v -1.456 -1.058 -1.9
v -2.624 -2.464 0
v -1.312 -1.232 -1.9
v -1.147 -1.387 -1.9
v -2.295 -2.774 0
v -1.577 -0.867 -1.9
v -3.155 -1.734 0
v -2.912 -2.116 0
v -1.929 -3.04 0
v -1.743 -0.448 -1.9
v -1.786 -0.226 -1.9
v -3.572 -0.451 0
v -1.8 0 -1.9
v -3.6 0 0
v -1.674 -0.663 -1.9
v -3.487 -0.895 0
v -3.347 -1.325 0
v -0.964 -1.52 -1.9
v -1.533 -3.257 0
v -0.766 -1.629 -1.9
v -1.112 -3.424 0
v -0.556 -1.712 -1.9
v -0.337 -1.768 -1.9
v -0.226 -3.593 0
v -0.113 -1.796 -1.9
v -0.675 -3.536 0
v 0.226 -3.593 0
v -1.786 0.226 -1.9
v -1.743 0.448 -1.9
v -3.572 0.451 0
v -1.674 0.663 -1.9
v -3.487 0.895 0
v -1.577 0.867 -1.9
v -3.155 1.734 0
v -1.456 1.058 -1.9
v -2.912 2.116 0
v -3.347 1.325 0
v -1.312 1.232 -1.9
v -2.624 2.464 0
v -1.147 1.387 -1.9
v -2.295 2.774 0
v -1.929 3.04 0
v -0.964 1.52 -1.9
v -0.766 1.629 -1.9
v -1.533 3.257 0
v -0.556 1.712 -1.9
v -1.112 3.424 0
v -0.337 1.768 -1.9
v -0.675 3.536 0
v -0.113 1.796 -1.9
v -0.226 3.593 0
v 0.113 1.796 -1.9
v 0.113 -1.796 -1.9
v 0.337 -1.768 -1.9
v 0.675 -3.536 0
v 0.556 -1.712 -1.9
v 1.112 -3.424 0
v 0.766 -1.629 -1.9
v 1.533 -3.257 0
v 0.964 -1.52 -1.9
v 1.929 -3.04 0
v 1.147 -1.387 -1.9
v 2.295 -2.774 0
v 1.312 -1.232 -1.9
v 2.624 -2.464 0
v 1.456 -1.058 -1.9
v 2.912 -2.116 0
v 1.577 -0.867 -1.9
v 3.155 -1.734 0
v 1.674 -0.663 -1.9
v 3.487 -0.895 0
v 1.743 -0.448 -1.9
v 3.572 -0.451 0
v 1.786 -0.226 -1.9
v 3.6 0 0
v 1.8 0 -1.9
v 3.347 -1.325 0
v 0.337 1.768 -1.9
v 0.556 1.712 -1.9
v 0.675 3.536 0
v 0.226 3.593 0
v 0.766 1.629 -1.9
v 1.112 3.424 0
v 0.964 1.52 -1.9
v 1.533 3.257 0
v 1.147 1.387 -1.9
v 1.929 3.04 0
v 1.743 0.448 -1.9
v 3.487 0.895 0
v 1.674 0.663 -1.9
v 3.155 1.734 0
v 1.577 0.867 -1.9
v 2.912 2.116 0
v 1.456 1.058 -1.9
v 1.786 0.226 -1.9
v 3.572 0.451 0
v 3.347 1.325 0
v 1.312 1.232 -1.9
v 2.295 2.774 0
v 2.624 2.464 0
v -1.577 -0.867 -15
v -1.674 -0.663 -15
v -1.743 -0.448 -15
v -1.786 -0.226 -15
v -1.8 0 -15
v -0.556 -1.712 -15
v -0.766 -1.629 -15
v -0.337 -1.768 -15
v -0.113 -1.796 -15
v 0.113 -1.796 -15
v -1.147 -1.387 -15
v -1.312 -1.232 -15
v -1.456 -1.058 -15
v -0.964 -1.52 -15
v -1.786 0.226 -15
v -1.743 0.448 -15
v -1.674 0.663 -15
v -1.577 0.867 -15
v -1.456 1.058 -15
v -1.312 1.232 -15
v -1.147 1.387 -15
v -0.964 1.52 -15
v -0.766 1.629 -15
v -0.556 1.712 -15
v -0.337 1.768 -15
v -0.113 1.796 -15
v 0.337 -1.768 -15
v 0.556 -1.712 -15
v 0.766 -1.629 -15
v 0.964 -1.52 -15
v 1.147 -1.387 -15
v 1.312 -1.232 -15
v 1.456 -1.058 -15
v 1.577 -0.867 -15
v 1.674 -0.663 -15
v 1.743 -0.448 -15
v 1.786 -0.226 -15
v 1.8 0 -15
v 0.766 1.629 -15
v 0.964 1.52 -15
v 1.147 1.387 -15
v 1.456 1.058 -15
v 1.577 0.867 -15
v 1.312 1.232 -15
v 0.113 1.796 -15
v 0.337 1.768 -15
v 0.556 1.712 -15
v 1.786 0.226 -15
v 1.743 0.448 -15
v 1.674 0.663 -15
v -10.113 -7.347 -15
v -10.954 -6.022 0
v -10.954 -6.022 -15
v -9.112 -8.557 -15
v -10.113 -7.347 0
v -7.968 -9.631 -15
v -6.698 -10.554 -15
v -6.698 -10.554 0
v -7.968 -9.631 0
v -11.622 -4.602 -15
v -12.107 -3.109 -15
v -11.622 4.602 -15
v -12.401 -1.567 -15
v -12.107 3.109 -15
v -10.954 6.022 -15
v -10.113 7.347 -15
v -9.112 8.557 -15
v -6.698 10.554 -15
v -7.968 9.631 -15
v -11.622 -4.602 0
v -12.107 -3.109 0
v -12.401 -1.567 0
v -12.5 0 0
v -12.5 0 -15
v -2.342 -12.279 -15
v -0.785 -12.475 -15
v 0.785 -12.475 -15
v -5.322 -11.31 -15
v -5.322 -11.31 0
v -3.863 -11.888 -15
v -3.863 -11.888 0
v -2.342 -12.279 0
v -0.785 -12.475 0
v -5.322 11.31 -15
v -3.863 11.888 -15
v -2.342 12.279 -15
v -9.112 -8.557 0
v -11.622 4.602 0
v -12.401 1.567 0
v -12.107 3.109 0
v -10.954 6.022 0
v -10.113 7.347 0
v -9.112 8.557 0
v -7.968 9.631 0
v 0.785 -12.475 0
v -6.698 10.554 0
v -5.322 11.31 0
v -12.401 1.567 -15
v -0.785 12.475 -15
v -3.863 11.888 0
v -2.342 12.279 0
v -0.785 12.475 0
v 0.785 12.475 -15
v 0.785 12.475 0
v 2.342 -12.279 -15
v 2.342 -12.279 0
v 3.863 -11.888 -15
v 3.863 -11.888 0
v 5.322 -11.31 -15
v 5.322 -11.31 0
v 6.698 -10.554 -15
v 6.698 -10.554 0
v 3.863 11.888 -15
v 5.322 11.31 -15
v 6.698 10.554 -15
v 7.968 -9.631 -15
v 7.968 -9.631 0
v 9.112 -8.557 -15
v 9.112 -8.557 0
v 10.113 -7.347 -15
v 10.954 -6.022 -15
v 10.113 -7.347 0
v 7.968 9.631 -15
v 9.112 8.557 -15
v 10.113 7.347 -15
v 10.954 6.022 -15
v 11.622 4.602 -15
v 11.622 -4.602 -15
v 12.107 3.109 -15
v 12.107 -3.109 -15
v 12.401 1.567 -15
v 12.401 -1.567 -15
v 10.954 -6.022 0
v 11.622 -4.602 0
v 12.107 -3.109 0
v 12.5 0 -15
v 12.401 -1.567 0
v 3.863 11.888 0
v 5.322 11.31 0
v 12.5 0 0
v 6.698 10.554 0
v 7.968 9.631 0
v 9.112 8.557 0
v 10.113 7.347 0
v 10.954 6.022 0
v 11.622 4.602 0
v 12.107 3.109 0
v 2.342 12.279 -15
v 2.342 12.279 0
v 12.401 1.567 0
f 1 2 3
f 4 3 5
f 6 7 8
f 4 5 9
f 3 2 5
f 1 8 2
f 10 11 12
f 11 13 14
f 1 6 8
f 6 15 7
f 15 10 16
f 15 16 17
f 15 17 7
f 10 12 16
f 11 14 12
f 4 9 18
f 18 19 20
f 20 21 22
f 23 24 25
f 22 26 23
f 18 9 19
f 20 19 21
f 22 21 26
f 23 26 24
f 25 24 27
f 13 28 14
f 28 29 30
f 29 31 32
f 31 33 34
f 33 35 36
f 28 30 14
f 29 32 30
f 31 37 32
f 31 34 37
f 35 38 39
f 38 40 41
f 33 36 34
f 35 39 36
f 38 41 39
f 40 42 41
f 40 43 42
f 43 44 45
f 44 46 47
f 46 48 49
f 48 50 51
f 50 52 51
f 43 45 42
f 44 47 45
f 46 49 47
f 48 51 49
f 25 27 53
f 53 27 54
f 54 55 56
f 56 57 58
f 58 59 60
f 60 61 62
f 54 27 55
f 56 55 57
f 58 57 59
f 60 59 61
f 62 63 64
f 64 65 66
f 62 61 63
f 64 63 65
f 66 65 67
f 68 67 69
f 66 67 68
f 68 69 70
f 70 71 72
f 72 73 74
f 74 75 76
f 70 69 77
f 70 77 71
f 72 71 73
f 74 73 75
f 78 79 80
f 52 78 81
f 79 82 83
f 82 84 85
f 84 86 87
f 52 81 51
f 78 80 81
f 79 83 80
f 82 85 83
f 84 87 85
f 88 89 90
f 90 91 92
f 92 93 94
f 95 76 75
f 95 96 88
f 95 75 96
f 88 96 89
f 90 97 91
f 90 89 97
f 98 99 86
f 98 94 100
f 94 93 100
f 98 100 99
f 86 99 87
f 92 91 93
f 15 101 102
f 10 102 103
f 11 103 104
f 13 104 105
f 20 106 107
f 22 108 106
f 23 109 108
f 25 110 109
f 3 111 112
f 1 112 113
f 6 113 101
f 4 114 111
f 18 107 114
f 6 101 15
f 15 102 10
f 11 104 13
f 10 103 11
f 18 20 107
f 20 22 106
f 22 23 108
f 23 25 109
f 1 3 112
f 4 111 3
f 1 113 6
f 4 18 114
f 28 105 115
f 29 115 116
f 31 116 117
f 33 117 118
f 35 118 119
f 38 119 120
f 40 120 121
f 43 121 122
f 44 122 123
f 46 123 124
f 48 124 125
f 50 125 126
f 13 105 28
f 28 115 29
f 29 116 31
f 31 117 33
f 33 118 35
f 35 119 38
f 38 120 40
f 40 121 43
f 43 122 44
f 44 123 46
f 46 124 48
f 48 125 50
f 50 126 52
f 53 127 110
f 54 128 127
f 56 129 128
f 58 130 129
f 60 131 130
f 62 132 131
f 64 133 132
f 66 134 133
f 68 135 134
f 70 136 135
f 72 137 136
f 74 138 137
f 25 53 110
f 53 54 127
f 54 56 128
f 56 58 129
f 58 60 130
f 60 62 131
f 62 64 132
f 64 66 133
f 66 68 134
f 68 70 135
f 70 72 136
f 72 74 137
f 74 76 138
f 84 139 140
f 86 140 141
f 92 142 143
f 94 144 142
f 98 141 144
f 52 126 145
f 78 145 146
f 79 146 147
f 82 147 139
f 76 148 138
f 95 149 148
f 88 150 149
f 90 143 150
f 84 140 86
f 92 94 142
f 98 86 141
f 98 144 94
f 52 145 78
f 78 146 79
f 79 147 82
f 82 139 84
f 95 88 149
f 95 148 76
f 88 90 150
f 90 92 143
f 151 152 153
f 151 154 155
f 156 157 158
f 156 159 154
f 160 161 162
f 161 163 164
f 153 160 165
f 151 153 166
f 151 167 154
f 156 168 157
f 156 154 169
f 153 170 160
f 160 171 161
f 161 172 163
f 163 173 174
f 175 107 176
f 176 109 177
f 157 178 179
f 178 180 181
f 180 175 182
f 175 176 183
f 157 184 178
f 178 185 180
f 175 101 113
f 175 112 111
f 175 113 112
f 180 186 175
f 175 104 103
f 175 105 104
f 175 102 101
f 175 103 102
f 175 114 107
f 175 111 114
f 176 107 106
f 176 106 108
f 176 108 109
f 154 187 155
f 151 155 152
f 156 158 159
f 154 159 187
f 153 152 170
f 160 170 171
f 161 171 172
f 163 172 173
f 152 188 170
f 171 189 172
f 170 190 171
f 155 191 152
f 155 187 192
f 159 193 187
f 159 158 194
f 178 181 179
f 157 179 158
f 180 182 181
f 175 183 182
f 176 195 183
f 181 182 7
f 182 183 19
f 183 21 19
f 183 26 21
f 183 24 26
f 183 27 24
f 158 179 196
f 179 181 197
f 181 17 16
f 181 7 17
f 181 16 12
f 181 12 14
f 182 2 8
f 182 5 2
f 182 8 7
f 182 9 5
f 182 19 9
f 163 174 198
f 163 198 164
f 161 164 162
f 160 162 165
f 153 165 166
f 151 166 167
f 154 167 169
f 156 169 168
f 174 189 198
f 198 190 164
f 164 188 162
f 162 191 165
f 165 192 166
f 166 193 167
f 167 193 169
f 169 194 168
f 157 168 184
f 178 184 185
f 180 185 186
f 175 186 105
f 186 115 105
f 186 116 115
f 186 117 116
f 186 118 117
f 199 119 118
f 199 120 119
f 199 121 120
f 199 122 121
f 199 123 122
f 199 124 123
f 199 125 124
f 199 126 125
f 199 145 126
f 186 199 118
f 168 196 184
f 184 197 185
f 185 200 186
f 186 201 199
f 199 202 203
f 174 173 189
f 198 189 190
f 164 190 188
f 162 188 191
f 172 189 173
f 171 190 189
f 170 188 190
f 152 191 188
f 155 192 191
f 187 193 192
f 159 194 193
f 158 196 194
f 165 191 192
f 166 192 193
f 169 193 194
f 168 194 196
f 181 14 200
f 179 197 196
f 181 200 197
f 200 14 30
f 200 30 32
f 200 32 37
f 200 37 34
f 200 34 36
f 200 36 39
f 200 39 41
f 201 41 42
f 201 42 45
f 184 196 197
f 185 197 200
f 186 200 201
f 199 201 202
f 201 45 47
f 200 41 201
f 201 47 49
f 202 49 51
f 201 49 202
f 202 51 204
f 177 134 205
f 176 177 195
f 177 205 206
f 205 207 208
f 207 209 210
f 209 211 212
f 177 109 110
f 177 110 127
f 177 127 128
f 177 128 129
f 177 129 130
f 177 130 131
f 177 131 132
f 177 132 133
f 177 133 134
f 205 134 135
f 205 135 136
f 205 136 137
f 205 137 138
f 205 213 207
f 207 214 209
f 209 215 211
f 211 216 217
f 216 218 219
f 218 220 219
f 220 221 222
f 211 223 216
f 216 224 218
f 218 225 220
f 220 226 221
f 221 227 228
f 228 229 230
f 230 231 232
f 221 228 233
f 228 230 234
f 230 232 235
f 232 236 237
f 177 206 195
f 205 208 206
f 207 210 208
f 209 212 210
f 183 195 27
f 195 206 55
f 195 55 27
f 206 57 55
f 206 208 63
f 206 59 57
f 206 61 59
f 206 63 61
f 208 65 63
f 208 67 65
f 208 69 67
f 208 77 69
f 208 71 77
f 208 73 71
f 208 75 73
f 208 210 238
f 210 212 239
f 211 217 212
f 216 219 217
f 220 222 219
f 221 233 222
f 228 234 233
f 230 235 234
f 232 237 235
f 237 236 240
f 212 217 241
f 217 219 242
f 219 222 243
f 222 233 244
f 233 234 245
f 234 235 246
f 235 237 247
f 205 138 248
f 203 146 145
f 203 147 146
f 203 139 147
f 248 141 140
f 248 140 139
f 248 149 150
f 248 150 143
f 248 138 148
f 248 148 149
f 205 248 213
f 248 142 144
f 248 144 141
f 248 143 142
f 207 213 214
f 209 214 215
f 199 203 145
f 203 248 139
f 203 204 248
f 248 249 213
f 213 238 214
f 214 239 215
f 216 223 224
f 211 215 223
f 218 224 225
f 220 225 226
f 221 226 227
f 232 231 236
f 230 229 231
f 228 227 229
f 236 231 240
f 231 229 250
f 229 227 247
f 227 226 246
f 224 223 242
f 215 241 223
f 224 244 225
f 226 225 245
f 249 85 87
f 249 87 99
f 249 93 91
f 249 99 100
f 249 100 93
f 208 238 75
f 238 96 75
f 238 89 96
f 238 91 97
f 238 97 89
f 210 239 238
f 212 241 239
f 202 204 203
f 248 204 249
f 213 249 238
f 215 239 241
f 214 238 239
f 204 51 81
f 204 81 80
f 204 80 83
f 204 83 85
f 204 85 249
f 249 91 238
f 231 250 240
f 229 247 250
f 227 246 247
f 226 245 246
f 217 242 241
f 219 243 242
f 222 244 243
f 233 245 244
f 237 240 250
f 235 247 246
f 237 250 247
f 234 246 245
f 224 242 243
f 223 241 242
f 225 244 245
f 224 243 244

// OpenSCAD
$fn = 50;


difference() {
	union() {
		translate(v = [0, 0, -15.0000000000]) {
			cylinder(h = 15, r = 12.5000000000);
		}
	}
	union() {
		translate(v = [0, 0, 0]) {
			rotate(a = [0, 0, 0]) {
				difference() {
					union() {
						translate(v = [0, 0, -18.0000000000]) {
							cylinder(h = 18, r = 1.5000000000);
						}
						translate(v = [0, 0, -1.9000000000]) {
							cylinder(h = 1.9000000000, r1 = 1.8000000000, r2 = 3.6000000000);
						}
						translate(v = [0, 0, -18.0000000000]) {
							cylinder(h = 18, r = 1.8000000000);
						}
						translate(v = [0, 0, -18.0000000000]) {
							cylinder(h = 18, r = 1.5000000000);
						}
					}
					union();
				}
			}
		}
	}
}
